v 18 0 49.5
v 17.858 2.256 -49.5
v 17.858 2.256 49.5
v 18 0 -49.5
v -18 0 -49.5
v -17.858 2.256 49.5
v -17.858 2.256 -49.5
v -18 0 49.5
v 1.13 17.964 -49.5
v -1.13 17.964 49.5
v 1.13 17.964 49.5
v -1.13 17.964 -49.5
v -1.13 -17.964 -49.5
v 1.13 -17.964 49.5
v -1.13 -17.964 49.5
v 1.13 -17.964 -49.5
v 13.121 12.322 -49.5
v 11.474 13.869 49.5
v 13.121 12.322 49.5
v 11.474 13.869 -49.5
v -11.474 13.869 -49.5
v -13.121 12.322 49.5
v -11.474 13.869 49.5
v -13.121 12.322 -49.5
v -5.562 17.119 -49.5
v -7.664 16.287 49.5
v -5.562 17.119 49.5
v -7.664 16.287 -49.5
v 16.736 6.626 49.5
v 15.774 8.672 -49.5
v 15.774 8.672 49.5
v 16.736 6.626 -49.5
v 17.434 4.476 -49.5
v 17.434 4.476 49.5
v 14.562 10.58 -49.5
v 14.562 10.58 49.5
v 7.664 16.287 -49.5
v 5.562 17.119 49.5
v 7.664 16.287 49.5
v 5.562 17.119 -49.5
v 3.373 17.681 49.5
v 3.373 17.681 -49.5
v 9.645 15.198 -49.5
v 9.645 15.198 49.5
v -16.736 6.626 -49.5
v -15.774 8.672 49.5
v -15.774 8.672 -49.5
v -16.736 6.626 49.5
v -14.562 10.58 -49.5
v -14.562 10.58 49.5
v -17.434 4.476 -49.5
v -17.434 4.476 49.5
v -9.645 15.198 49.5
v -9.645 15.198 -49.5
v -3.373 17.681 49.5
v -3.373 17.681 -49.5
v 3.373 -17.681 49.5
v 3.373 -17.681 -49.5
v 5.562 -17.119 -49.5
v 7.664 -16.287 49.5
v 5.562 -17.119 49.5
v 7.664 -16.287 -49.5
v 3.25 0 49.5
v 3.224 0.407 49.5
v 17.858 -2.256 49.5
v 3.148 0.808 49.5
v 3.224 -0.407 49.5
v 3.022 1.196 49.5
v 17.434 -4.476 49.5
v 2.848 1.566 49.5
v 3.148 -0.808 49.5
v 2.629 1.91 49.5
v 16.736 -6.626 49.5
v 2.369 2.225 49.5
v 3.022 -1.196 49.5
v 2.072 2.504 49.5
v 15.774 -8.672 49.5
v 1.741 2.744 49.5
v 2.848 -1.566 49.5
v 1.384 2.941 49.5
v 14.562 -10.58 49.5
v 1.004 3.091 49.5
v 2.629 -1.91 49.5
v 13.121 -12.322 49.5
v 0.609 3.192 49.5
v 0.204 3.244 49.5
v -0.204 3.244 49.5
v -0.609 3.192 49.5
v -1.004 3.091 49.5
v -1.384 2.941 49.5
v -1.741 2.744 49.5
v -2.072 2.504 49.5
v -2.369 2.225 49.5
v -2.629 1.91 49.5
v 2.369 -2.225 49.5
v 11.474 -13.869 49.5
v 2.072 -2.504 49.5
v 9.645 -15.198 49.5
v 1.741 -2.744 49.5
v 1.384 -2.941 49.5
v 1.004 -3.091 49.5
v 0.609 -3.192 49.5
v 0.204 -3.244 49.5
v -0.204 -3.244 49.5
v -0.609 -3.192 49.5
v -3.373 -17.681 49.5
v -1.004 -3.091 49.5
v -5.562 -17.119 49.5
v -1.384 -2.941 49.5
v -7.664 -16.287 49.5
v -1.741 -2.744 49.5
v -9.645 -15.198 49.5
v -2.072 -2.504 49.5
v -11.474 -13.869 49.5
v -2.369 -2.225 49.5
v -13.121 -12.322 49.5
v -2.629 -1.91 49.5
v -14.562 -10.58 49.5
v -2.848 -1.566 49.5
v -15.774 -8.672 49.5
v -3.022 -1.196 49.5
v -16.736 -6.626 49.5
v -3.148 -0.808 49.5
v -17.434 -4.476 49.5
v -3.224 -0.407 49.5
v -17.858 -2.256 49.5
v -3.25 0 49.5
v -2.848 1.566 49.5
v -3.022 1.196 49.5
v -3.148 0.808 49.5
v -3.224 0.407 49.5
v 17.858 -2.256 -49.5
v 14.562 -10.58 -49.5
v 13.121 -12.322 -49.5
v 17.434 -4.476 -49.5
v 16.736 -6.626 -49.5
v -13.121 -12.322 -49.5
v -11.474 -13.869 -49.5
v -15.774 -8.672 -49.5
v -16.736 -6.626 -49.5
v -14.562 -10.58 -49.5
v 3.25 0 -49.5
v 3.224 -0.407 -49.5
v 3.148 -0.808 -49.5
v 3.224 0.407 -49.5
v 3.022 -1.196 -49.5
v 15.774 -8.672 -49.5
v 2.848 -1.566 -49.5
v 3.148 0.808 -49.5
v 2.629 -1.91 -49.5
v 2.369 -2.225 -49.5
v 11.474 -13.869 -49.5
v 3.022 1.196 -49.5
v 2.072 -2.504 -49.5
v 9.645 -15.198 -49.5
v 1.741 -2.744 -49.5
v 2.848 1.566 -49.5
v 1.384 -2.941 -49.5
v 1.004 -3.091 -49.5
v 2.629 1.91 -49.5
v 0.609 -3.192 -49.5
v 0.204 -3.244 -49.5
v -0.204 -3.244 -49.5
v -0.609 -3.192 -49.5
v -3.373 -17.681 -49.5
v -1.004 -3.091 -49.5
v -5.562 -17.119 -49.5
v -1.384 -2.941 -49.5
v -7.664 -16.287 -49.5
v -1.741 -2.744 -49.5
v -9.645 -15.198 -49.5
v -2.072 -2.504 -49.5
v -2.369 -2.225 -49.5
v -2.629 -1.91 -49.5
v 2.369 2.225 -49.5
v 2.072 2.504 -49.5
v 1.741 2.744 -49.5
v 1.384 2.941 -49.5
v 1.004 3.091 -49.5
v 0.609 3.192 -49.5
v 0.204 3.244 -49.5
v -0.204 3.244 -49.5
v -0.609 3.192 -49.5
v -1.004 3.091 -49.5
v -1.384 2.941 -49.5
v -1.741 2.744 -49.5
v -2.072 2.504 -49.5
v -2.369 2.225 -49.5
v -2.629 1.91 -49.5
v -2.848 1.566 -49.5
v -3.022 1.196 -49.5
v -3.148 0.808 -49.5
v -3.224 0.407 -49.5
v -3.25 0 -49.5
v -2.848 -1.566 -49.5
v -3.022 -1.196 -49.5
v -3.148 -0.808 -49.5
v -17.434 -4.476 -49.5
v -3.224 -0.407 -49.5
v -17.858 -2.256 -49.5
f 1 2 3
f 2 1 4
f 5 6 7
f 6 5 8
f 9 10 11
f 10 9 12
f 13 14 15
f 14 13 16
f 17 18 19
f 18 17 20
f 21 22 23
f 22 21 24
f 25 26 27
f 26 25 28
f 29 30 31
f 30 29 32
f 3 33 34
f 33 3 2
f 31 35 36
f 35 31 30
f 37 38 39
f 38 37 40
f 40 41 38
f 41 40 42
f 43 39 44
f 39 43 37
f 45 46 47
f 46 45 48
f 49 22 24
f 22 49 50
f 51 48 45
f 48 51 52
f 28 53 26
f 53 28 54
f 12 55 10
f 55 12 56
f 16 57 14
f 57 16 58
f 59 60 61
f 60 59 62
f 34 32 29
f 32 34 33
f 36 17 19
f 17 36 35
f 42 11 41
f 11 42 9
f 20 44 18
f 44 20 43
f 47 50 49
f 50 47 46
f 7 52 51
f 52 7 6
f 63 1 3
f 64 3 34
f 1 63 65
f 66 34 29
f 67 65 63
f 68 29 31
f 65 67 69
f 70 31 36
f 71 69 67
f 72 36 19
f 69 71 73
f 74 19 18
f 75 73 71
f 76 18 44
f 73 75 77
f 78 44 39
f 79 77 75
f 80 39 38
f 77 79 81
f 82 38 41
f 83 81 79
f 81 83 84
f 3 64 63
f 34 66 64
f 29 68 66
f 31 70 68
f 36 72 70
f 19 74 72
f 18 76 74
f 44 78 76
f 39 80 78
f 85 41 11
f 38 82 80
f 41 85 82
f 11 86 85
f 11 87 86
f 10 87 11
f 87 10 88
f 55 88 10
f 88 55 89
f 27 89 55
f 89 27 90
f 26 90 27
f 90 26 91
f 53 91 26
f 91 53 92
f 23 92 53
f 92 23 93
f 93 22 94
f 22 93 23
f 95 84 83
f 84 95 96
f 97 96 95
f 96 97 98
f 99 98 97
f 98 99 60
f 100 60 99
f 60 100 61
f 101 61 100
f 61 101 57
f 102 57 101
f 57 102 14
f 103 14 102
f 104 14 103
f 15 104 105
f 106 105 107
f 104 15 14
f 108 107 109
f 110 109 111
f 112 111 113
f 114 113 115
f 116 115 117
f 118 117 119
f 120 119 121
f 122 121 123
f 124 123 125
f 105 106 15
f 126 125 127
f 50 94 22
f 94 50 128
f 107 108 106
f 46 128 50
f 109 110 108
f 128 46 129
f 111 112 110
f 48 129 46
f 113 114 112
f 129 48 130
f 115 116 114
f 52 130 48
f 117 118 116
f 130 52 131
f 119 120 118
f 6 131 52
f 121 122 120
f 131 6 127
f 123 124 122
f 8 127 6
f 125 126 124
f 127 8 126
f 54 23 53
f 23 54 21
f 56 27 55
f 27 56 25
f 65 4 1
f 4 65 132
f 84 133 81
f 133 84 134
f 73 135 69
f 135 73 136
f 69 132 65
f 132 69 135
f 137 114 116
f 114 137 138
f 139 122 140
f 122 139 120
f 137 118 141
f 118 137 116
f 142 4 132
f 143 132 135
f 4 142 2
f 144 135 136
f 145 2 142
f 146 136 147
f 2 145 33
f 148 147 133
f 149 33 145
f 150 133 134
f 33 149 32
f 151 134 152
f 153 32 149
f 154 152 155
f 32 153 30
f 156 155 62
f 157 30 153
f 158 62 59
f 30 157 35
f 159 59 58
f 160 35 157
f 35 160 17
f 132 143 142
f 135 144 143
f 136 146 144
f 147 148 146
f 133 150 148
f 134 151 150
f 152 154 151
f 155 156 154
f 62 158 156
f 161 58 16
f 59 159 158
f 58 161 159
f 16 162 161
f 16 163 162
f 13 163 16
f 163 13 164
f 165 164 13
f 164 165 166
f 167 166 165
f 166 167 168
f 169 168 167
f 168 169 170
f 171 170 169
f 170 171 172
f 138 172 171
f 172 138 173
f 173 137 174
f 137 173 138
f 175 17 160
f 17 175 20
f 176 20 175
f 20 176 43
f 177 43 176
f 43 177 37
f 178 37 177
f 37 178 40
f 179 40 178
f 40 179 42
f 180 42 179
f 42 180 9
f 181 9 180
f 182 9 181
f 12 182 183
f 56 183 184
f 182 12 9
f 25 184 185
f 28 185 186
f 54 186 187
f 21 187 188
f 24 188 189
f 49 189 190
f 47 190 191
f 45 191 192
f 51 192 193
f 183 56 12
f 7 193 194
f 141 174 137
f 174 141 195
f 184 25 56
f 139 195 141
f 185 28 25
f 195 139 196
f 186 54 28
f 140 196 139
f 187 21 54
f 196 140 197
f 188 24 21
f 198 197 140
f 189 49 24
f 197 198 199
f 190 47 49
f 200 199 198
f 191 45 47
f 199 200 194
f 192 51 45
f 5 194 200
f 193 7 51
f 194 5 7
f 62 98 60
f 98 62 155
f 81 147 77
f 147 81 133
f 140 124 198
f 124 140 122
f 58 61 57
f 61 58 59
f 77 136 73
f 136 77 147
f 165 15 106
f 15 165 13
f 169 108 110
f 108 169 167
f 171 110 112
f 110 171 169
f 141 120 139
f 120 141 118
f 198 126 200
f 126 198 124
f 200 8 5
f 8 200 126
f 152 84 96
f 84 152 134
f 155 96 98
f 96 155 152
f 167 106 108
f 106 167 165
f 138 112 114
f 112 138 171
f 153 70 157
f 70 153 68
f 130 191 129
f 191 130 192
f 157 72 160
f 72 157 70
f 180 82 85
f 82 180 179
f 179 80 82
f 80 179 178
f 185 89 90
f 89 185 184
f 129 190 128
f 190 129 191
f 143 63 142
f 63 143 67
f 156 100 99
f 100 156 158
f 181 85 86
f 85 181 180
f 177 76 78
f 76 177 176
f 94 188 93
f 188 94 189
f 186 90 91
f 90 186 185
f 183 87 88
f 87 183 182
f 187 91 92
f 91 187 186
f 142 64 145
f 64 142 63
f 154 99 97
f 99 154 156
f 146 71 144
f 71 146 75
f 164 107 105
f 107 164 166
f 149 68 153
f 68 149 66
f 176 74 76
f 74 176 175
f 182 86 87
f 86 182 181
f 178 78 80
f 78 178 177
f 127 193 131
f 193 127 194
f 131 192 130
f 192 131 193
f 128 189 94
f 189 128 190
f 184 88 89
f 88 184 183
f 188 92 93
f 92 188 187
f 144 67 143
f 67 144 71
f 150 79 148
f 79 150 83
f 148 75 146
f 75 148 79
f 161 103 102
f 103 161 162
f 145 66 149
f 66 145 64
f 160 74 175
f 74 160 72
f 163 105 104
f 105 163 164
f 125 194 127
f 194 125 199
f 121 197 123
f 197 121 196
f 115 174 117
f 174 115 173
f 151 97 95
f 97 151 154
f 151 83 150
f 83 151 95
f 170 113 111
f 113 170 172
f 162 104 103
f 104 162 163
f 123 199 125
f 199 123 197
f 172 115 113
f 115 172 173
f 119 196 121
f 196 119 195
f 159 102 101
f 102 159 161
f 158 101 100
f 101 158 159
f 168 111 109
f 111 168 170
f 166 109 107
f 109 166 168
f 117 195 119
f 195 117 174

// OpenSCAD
$fn = 50;


difference() {
	union() {
		translate(v = [0, 0, -49.5000000000]) {
			cylinder(h = 99, r = 18.0000000000);
		}
	}
	union() {
		translate(v = [0, 0, -100.0000000000]) {
			cylinder(h = 200, r = 3.2500000000);
		}
	}
}
